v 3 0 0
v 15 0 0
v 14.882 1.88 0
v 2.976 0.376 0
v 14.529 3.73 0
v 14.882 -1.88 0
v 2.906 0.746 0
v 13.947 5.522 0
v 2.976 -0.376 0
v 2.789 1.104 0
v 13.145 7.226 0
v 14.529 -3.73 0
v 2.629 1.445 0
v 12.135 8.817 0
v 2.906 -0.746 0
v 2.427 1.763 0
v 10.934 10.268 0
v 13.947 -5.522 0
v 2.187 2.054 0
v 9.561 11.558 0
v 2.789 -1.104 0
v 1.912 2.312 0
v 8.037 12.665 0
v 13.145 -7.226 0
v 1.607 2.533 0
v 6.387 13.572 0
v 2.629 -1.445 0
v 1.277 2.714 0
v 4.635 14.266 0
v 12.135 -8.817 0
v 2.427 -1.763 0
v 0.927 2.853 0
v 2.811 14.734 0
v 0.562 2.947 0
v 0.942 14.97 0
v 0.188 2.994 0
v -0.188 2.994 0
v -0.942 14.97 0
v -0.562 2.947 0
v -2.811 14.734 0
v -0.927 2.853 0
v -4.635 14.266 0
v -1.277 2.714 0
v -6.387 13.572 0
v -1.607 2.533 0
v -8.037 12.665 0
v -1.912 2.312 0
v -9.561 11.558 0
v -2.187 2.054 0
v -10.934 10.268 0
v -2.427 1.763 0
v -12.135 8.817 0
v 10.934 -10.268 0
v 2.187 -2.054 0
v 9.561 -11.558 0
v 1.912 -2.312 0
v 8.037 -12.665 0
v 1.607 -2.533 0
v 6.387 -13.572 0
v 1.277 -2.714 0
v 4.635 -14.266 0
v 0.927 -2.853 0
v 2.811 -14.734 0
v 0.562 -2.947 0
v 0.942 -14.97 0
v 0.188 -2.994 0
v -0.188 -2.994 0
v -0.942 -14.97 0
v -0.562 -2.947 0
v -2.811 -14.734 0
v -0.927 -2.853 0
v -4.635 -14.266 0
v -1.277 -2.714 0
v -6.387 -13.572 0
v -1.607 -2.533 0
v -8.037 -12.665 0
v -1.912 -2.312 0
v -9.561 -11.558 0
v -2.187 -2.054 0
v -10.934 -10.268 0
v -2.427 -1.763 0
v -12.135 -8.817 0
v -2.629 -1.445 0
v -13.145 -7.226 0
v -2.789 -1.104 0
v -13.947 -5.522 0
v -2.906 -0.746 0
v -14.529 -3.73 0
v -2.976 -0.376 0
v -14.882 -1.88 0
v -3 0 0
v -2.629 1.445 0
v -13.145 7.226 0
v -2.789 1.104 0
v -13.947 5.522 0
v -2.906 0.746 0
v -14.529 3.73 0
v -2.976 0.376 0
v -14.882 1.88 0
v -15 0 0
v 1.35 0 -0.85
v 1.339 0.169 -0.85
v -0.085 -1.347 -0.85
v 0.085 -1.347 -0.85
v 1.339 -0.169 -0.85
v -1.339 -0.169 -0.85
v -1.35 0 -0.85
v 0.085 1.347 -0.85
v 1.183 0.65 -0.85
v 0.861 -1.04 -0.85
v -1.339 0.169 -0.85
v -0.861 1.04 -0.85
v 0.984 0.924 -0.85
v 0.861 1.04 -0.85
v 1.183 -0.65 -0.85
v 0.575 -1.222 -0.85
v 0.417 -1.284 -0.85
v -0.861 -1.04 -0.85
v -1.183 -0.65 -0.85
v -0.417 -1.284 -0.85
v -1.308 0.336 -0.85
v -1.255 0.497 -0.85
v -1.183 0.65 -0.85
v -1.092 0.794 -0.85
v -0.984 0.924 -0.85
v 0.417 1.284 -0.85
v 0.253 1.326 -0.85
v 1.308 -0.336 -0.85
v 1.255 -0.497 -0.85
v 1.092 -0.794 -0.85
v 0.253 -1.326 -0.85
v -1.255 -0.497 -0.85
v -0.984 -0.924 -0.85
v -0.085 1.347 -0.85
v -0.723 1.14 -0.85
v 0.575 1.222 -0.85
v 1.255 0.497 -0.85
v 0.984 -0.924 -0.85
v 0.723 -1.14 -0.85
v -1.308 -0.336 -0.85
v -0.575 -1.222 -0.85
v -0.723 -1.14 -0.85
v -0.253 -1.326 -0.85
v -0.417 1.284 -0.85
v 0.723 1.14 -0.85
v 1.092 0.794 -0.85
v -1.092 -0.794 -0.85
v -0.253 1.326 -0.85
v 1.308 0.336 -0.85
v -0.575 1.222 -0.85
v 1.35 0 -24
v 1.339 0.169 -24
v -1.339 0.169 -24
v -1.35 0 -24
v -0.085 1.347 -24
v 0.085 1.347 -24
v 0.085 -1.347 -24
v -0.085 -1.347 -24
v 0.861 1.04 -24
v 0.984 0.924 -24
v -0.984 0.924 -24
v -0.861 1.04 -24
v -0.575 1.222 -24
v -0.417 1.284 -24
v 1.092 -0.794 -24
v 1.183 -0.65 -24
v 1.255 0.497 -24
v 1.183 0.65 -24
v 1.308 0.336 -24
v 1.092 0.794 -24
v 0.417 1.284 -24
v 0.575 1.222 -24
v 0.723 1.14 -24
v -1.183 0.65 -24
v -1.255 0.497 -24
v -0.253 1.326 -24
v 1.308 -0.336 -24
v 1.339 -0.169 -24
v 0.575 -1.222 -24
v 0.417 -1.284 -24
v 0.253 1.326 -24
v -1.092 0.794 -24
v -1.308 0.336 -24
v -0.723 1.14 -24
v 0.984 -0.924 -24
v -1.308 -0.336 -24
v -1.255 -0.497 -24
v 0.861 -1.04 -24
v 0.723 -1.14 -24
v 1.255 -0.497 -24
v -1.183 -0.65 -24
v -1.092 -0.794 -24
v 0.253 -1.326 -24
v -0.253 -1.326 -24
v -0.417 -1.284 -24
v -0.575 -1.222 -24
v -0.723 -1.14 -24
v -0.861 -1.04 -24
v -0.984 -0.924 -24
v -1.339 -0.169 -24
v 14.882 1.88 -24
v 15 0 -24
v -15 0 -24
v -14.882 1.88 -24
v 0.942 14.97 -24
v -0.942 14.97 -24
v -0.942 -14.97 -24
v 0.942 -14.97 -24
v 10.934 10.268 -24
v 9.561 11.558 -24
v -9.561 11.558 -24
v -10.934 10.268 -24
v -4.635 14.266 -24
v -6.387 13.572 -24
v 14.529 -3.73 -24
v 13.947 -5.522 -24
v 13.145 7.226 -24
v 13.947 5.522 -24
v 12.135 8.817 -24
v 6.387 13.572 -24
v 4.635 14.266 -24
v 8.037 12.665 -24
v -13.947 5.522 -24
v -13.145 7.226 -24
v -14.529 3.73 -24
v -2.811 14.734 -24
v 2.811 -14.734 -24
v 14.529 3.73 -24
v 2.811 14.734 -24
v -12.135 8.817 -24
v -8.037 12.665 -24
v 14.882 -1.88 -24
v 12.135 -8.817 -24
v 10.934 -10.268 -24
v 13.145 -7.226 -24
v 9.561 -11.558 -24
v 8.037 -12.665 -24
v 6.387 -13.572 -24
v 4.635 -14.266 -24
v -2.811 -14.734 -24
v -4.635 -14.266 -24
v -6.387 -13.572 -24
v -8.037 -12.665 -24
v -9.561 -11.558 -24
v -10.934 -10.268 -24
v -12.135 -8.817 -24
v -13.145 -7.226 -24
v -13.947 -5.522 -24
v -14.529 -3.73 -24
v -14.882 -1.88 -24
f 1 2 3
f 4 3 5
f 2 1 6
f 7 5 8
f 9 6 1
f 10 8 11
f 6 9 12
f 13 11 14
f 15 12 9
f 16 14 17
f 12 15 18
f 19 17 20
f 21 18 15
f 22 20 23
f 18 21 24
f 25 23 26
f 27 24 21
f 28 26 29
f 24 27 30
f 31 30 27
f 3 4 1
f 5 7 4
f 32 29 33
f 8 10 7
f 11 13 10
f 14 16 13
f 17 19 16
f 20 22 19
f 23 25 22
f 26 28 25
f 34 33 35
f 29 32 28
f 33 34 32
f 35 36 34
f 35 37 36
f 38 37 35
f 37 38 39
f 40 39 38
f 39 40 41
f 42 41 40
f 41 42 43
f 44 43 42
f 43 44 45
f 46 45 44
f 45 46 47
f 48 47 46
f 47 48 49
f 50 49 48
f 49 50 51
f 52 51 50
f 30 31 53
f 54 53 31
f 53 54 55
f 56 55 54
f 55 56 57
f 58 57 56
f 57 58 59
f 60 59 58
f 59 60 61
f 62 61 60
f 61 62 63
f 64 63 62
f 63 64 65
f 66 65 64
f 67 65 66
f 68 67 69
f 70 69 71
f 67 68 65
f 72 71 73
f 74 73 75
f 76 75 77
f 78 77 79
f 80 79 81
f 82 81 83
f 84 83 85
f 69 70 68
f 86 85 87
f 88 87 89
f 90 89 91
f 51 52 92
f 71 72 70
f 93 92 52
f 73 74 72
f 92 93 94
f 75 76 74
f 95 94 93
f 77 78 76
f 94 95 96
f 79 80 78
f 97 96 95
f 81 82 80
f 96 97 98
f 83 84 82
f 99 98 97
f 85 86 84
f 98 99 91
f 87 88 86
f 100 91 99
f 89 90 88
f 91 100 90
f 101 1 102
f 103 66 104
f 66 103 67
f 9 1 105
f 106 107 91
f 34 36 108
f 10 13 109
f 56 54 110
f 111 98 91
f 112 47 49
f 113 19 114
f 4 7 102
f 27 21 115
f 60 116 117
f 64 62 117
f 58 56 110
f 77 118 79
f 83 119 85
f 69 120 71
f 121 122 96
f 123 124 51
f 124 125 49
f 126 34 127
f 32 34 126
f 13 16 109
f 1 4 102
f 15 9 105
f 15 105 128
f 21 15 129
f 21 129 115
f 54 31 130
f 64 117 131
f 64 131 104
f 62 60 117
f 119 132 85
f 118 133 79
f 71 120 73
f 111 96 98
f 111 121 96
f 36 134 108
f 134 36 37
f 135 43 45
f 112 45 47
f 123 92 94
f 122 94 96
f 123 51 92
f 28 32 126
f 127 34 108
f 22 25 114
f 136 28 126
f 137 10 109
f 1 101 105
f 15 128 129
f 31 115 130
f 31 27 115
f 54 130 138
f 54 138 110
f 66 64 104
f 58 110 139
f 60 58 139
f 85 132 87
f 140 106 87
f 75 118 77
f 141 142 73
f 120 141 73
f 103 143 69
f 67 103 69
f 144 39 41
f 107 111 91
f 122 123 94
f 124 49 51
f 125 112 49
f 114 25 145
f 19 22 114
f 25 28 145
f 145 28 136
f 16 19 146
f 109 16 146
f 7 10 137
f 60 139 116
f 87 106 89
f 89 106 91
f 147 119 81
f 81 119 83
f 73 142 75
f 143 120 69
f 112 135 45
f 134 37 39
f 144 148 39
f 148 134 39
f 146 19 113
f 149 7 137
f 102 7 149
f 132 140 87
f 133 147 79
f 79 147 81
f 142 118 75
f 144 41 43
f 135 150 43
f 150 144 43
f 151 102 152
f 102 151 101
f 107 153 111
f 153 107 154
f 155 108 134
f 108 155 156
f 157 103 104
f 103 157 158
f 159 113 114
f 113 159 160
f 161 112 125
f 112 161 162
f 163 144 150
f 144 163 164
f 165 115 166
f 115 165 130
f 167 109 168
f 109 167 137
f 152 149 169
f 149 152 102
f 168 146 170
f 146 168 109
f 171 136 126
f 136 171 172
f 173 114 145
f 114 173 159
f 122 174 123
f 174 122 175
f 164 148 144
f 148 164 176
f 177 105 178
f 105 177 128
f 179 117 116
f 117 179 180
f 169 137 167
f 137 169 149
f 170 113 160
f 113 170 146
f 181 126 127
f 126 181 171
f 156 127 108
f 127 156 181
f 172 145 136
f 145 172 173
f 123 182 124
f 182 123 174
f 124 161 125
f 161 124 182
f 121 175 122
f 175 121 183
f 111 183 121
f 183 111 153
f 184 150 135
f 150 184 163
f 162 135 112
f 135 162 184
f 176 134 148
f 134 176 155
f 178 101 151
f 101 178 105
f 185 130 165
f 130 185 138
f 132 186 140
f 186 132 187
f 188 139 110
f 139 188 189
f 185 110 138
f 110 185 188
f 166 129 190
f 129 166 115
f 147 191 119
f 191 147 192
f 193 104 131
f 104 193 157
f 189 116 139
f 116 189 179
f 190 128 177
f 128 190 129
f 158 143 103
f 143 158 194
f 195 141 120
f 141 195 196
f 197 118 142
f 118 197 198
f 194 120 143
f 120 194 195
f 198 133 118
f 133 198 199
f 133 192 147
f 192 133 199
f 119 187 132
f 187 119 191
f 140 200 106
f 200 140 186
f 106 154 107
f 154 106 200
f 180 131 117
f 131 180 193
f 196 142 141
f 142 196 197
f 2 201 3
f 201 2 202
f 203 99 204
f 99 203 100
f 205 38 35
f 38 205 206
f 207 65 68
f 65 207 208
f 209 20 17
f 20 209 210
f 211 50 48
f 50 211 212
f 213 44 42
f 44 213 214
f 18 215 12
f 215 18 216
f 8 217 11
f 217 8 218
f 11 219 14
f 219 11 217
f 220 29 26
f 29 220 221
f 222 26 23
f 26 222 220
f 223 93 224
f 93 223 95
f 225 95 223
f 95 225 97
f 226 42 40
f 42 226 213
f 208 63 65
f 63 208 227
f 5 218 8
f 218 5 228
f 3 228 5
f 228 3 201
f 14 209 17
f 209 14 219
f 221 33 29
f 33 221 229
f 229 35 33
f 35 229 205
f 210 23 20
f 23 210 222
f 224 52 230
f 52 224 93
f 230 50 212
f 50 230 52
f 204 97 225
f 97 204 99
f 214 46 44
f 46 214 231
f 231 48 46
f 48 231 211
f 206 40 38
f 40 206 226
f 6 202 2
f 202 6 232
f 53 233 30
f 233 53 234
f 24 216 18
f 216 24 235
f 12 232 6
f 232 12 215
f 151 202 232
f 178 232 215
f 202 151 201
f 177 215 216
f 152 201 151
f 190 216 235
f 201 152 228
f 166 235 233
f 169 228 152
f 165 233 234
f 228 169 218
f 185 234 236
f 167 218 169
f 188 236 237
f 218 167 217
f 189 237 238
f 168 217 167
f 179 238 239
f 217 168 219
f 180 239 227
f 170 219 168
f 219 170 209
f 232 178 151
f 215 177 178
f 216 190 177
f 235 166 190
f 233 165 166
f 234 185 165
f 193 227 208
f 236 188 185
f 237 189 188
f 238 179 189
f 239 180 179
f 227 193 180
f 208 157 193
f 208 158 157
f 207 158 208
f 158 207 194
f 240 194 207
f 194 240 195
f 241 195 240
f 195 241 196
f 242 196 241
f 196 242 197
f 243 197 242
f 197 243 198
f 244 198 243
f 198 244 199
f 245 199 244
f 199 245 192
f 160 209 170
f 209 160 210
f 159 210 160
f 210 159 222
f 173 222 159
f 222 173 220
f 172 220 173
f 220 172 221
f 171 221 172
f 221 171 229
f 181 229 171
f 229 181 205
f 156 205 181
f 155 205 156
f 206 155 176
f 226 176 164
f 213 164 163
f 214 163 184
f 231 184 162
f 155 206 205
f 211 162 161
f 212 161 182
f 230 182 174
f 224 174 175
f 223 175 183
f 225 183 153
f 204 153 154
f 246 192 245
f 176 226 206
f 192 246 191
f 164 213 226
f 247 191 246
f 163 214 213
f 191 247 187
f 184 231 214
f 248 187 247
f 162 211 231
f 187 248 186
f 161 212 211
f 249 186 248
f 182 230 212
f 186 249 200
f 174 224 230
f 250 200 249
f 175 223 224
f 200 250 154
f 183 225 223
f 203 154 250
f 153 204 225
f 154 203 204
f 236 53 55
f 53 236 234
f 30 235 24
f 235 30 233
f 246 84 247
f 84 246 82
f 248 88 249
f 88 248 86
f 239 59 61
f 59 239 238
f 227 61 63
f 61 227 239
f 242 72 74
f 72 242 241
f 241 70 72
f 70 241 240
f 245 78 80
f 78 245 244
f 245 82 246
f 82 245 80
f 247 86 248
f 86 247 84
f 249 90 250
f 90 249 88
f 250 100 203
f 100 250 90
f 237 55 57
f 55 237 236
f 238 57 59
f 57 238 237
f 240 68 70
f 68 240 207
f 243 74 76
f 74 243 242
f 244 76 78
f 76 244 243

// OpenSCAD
$fn = 50;

difference() {
	union() {
		translate(v = [0, 0, -24.0]) {
			cylinder(h = 24, r = 15.0);
		}
	}
	union() {
		translate(v = [0, 0, 0]) {
			rotate(a = [0, 0, 0]) {
				difference() {
					union() {
						translate(v = [0, 0, -27.0]) {
							cylinder(h = 27, r = 1.0);
						}
						translate(v = [0, 0, -0.85]) {
							cylinder(h = 0.85, r1 = 1.35, r2 = 3.0);
						}
						translate(v = [0, 0, -27.0]) {
							cylinder(h = 27, r = 1.35);
						}
						translate(v = [0, 0, -27.0]) {
							cylinder(h = 27, r = 1.0);
						}
					}
					union();
				}
			}
		}
	}
}
